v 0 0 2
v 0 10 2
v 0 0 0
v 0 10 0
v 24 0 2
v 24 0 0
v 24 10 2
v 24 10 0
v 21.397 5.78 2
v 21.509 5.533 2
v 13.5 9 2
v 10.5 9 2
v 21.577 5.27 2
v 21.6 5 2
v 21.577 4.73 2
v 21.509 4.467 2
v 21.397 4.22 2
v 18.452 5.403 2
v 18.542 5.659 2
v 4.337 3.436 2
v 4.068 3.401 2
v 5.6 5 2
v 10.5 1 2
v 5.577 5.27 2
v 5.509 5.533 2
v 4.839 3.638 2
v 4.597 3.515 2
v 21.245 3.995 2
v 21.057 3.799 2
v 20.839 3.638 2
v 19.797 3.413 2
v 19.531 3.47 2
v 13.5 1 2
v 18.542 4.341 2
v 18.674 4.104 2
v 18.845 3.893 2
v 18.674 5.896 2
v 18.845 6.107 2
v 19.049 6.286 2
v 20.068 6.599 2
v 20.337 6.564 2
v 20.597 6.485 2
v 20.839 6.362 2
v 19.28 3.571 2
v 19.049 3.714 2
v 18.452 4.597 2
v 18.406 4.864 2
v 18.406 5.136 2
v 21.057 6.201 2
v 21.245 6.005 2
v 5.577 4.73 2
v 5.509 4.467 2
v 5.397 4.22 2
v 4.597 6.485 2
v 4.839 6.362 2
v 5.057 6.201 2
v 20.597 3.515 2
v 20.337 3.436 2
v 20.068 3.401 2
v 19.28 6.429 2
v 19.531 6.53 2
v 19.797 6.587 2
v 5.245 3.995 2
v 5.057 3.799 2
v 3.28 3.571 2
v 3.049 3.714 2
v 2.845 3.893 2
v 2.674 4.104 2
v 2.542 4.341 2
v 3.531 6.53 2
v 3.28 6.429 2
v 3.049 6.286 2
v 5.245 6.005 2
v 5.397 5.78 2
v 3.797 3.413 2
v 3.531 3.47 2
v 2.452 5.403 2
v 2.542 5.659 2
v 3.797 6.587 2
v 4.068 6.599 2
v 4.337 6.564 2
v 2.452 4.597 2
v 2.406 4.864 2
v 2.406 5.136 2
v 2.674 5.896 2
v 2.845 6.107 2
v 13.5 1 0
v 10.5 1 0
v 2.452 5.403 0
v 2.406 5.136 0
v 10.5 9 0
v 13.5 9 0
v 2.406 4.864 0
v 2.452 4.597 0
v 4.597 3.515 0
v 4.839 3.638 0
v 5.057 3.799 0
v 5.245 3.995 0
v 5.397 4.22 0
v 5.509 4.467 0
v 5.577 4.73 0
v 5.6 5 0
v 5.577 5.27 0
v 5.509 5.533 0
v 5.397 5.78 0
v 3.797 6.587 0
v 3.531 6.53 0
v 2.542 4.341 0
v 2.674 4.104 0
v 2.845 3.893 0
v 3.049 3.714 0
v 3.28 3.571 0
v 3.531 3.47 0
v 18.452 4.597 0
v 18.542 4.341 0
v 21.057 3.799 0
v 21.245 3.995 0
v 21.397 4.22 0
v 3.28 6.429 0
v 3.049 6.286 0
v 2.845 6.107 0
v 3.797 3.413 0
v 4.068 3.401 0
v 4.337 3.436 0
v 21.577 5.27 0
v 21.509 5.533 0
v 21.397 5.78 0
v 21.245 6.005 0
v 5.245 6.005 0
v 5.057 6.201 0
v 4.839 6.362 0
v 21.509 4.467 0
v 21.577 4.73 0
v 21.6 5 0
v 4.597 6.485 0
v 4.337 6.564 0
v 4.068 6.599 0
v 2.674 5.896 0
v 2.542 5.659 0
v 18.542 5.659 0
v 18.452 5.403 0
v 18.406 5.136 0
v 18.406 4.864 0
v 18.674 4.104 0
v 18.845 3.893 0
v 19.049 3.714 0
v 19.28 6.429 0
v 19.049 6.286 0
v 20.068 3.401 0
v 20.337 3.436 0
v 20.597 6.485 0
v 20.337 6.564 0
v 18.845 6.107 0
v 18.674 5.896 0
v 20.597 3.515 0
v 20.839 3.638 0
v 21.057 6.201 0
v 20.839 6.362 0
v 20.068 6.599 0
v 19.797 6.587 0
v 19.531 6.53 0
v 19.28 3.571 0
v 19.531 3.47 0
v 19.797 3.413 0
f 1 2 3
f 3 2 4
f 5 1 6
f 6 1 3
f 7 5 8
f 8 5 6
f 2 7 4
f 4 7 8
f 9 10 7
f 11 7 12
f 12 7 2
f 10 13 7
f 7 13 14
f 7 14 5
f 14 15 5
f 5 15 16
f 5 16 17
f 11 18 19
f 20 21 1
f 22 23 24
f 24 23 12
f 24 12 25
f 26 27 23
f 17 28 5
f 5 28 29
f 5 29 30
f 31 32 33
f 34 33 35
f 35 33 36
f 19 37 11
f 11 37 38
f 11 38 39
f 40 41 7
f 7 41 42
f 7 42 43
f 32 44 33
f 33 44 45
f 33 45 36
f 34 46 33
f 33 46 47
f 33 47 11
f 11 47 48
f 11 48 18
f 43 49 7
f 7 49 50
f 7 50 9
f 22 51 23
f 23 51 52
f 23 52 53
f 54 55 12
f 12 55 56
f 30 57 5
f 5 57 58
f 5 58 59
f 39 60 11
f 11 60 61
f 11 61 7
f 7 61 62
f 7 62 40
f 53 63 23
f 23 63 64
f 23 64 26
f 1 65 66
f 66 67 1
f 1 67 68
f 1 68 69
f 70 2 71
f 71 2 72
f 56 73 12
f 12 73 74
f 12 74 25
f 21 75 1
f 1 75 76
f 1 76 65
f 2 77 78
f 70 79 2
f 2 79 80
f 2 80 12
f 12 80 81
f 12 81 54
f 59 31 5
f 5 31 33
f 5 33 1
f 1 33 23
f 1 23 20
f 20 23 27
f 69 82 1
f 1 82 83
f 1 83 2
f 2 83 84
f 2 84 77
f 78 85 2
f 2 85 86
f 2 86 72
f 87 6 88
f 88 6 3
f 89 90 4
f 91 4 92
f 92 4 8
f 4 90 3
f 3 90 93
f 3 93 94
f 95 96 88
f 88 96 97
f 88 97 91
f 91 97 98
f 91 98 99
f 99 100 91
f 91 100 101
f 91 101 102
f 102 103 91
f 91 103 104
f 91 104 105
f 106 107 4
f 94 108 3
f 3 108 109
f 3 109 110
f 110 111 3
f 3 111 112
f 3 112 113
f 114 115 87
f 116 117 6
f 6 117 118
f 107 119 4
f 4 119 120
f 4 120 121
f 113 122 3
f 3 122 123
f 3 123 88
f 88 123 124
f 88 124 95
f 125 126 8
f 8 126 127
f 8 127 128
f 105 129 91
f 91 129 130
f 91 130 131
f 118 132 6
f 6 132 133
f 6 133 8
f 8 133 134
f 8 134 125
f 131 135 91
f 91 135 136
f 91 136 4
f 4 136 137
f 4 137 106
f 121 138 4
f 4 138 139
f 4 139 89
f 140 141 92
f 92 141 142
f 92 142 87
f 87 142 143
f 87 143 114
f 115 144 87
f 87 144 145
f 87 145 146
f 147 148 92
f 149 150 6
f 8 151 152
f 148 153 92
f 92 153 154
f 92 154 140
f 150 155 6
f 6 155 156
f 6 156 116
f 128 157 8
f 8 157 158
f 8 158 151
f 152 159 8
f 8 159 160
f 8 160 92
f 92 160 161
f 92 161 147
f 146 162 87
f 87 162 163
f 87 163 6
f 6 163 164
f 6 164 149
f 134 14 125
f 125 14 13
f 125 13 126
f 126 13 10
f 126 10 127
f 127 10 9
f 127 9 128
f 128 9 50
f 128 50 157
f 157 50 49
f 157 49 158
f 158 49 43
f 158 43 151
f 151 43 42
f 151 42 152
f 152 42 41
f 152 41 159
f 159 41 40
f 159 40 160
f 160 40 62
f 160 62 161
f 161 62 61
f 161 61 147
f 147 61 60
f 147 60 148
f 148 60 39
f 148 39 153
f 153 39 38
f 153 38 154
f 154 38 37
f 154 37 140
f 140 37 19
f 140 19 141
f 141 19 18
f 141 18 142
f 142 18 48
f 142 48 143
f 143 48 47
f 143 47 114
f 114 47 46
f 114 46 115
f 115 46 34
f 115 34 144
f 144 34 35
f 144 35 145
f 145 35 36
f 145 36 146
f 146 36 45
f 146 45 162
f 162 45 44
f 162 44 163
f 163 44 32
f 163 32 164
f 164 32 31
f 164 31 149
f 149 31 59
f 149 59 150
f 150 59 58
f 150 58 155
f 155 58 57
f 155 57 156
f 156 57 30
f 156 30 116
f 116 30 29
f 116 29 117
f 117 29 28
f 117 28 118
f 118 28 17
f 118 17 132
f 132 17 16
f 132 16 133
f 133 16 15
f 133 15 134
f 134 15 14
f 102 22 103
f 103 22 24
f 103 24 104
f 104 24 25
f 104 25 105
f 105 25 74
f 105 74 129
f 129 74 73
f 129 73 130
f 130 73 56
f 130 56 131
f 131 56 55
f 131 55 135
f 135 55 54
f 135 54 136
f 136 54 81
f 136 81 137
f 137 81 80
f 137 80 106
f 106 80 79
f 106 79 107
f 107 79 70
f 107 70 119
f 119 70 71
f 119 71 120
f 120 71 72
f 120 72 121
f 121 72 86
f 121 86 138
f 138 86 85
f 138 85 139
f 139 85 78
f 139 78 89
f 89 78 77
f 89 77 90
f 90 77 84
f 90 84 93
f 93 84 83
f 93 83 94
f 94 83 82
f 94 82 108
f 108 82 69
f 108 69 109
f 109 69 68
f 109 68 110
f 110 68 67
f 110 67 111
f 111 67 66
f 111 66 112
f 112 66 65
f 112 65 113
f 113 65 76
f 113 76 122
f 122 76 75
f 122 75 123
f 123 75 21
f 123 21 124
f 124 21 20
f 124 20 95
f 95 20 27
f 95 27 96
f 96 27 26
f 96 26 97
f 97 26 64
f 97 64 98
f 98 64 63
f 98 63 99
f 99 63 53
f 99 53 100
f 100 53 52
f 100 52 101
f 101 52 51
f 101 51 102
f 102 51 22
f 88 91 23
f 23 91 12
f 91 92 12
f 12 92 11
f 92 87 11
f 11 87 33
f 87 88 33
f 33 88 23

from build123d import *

# Parameters (mm, degrees)
SKETCH1_W           = 24
SKETCH1_H           = 10
BOSS_EXTRUDE1_DEPTH = 2
SKETCH2_R           = 1.6
CUT_EXTRUDE1_DEPTH  = 2
SKETCH3_W           = 3
SKETCH3_H           = 8
CUT_EXTRUDE2_DEPTH  = 2


with BuildPart() as part:
    # Sketch1 → Boss-Extrude1 (new body)
    with BuildSketch(Plane.XY):
        with Locations((12, 5)):
            Rectangle(SKETCH1_W, SKETCH1_H)
    extrude(amount=BOSS_EXTRUDE1_DEPTH)

    # Sketch2 → Cut-Extrude1 (cut)
    with BuildSketch(Plane.XY.offset(2)):
        with Locations((4, 5)):
            Circle(SKETCH2_R)
        with Locations((20, 5)):
            Circle(SKETCH2_R)
    extrude(amount=-CUT_EXTRUDE1_DEPTH, mode=Mode.SUBTRACT)

    # Sketch3 → Cut-Extrude2 (cut)
    with BuildSketch(Plane.XY.offset(2)):
        with Locations((12, 5)):
            Rectangle(SKETCH3_W, SKETCH3_H)
    extrude(amount=-CUT_EXTRUDE2_DEPTH, mode=Mode.SUBTRACT)


solid = part.part
